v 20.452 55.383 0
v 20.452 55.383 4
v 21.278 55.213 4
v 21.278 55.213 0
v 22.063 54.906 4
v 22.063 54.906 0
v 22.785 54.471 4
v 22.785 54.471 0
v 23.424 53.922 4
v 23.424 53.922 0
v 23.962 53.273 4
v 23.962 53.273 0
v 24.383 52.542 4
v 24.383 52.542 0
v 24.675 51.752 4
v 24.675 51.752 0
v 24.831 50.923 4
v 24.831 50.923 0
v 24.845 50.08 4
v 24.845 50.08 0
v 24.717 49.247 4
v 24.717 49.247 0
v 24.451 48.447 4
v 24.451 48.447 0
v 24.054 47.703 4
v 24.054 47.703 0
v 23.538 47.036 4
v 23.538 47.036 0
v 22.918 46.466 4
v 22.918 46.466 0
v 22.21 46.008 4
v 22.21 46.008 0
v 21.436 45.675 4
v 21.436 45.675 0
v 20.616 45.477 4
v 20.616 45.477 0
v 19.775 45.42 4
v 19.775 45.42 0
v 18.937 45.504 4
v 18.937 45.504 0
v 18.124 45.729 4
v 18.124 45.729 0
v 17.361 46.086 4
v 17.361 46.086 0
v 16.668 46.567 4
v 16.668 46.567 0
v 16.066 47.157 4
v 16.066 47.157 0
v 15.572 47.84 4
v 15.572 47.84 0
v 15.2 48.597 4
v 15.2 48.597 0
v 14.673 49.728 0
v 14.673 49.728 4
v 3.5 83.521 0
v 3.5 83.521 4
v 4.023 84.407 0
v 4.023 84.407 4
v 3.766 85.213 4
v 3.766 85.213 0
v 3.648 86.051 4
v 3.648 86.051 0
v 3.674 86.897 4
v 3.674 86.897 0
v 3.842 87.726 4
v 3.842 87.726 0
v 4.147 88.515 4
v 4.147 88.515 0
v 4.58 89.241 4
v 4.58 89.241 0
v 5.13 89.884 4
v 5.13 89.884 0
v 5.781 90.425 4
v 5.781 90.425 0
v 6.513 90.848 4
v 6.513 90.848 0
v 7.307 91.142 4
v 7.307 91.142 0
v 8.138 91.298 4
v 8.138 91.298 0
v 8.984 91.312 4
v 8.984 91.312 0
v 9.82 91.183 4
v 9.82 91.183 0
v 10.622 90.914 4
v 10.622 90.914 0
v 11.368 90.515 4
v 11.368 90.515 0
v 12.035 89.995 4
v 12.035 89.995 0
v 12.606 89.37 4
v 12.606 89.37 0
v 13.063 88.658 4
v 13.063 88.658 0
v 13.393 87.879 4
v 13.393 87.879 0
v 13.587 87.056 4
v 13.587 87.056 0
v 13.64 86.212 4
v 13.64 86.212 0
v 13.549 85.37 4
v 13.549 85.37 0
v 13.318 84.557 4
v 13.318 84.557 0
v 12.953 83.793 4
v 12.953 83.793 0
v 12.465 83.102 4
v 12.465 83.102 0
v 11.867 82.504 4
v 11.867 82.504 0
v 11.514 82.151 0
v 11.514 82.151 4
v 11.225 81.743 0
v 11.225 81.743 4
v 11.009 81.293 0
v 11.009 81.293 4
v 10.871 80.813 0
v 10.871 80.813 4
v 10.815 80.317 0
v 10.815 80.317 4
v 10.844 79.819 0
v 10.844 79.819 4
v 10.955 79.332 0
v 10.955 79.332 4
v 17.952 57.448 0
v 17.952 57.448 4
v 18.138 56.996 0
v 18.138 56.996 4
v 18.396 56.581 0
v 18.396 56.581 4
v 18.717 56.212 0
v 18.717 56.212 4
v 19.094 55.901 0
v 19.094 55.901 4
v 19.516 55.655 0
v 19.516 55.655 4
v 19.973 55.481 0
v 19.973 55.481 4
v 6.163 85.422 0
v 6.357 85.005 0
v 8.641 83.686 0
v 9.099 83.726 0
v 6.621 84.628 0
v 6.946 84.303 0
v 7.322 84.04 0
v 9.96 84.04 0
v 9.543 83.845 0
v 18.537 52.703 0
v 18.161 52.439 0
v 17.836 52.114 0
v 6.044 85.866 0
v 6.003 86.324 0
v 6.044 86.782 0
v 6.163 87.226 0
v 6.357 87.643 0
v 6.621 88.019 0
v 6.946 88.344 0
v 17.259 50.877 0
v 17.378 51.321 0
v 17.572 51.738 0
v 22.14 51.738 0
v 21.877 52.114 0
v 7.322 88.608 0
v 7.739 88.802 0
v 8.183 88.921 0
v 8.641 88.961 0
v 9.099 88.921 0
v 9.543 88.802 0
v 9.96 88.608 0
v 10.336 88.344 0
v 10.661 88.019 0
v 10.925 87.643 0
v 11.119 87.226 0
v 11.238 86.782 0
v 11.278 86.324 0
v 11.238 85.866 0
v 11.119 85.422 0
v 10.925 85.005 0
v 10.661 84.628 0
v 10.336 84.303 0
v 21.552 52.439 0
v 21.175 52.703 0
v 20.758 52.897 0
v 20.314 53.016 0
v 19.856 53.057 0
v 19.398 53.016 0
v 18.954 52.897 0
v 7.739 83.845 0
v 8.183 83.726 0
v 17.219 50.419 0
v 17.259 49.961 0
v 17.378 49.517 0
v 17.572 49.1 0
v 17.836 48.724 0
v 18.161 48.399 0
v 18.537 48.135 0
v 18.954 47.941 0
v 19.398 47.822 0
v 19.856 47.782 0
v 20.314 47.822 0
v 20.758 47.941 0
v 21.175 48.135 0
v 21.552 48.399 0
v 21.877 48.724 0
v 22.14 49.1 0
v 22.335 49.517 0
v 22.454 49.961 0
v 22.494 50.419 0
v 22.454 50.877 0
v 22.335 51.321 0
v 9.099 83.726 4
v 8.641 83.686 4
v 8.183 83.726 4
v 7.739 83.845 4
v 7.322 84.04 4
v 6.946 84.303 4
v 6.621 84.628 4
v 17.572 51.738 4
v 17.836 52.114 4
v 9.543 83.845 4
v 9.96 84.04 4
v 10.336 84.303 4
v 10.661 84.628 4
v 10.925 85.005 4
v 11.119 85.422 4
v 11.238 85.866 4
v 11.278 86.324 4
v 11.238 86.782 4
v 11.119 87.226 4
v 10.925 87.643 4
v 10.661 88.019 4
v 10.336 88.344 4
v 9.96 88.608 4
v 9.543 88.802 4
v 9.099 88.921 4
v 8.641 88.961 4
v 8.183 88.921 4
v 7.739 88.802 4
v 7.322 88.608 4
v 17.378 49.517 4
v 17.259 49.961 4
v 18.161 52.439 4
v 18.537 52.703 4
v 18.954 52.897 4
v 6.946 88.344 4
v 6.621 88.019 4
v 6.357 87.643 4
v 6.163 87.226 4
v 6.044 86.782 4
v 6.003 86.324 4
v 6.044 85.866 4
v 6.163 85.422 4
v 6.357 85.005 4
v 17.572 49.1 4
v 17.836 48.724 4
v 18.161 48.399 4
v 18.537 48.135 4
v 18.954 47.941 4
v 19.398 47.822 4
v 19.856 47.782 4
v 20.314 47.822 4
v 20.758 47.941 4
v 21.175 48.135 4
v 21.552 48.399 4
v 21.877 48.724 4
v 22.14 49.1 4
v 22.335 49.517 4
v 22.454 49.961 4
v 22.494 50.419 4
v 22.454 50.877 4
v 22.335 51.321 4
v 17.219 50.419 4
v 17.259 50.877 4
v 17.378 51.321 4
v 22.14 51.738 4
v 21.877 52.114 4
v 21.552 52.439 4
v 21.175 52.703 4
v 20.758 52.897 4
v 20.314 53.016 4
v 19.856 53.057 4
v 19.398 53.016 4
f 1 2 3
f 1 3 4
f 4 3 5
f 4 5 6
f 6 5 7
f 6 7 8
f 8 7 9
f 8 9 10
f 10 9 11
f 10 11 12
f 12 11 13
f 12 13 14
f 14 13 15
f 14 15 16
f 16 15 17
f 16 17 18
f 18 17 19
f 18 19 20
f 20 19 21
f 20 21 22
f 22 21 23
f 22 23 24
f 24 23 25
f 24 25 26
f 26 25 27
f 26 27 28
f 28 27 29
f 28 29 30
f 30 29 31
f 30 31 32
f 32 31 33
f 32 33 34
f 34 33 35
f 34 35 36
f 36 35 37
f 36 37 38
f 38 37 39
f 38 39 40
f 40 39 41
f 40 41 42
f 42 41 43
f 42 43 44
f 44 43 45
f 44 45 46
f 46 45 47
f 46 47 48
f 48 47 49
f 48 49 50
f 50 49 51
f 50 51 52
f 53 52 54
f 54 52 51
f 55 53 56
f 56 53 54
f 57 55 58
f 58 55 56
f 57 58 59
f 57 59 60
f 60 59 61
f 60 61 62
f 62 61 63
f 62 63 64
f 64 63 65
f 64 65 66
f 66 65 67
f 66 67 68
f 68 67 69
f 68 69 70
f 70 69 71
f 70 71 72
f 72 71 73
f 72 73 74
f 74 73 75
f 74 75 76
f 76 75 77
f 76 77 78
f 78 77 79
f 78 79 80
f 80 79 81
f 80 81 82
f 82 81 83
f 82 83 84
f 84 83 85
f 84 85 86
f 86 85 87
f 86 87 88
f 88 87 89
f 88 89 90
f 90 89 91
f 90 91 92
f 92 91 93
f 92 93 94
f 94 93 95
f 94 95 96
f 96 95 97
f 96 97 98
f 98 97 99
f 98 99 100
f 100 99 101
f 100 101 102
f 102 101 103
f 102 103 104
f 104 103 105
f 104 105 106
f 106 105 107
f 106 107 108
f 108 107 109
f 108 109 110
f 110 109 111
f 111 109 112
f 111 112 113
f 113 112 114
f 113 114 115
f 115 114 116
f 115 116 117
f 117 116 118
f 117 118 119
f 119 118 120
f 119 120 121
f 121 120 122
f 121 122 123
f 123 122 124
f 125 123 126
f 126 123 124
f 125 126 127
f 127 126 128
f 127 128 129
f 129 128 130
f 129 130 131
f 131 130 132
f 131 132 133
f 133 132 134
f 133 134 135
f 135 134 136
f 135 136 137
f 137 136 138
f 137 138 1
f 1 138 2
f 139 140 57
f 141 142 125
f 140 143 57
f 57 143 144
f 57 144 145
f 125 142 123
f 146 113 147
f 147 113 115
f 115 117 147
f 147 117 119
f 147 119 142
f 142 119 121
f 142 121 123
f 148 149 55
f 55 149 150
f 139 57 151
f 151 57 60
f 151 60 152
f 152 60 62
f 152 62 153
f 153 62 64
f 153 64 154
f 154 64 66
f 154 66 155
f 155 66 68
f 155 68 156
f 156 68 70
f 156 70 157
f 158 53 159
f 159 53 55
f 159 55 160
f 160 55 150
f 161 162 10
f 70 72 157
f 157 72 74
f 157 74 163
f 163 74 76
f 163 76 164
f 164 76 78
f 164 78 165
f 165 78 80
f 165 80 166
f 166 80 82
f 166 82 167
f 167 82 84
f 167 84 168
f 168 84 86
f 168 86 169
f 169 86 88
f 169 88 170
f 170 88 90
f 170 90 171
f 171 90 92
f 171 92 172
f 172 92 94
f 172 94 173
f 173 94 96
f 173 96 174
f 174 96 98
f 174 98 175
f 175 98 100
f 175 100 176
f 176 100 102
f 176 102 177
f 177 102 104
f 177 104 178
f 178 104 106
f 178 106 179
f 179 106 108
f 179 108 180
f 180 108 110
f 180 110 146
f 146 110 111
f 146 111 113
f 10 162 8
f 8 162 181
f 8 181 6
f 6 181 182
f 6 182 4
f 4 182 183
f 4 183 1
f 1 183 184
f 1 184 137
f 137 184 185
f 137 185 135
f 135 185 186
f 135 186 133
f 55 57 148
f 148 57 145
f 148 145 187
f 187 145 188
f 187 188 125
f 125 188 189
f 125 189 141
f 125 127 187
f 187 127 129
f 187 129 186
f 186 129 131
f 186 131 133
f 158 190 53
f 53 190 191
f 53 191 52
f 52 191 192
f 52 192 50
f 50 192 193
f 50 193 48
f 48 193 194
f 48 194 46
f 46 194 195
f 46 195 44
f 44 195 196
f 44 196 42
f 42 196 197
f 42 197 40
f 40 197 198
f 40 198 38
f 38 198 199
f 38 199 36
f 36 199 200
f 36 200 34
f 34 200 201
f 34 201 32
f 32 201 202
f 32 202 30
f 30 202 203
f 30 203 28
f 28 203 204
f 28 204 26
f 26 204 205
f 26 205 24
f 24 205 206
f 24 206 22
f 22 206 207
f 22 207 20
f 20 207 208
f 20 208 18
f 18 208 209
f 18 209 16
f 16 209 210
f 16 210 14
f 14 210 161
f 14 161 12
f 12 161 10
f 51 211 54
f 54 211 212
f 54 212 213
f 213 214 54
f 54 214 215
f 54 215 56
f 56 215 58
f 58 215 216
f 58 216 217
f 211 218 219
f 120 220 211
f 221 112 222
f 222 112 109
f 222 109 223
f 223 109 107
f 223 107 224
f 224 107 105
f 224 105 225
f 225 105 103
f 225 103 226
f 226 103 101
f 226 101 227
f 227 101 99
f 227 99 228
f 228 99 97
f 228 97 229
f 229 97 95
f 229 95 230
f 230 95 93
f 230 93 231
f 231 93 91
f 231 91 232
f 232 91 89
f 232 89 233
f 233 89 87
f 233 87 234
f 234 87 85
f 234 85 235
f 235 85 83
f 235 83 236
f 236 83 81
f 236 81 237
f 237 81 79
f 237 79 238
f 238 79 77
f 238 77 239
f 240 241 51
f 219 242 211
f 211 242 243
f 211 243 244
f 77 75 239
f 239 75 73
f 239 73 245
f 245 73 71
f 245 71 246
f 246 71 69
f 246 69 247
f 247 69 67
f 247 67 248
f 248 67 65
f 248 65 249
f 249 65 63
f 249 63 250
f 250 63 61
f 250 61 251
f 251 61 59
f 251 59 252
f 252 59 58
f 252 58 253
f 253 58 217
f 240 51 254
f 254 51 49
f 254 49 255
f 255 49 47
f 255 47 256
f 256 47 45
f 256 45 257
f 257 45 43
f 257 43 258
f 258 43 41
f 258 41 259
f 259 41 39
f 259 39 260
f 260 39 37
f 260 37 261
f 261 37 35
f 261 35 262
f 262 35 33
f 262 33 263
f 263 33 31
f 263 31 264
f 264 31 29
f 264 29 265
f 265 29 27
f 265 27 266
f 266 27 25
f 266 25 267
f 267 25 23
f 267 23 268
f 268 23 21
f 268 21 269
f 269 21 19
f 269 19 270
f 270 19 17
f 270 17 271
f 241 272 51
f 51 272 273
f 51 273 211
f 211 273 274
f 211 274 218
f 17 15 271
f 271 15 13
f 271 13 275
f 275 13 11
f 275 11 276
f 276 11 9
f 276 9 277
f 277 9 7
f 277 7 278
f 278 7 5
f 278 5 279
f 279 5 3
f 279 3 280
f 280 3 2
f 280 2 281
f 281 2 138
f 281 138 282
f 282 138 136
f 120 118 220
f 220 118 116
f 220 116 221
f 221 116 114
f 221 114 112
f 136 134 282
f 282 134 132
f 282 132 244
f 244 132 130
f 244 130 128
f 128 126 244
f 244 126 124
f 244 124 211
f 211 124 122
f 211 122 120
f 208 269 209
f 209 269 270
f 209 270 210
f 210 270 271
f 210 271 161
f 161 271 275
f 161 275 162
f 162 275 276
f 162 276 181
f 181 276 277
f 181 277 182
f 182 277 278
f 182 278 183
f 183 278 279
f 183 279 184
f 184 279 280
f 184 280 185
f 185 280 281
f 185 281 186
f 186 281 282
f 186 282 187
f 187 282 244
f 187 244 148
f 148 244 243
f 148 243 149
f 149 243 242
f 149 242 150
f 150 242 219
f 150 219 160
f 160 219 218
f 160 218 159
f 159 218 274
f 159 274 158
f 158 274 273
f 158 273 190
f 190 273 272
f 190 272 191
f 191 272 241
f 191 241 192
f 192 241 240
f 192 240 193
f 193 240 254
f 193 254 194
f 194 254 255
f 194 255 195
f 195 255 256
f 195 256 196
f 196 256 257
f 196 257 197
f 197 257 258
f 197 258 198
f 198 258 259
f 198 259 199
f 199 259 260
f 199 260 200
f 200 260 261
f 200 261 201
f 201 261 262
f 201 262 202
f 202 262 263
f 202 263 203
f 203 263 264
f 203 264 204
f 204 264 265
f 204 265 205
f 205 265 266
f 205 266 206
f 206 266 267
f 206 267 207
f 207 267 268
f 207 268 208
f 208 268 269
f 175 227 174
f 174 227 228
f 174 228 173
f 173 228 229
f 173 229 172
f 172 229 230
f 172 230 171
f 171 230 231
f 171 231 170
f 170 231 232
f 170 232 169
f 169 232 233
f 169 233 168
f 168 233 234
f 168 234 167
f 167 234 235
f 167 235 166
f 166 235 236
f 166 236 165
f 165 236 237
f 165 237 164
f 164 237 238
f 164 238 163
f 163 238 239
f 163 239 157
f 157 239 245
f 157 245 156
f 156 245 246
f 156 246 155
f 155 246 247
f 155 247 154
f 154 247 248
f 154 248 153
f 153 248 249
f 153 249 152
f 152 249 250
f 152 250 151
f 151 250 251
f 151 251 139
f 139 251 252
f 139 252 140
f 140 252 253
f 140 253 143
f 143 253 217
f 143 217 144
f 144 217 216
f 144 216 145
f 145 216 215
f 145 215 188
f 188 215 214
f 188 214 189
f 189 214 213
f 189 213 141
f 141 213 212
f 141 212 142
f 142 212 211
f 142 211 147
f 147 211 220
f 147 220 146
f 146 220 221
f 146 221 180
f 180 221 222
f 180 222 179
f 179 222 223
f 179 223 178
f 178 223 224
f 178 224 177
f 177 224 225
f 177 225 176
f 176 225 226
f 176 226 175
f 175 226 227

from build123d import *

# Parameters (mm, degrees)
SKETCH1_R           = 2.6375
BOSS_EXTRUDE1_DEPTH = 4


with BuildPart() as part:
    # Sketch1 → Boss-Extrude1 (new body)
    with BuildSketch(Plane.XY.offset(4)):
        with BuildLine():
            Line((17.952113198, 57.448352953), (10.955070442, 79.331722279))
            ThreePointArc((10.955070442, 79.331722279), (10.929647665, 81.056262686), (11.867204342, 82.503906776))
            ThreePointArc((11.867204342, 82.503906776), (9.81999759, 91.182758949), (4.022786968, 84.407371171))
            Line((4.022786968, 84.407371171), (3.500292698, 83.52050233))
            Line((3.500292698, 83.52050233), (14.672653681, 49.728262883))
            Line((14.672653681, 49.728262883), (15.200071751, 48.596801815))
            ThreePointArc((15.200071751, 48.596801815), (23.810416572, 47.35893823), (20.452073098, 55.383392934))
            ThreePointArc((20.452073098, 55.383392934), (18.899078146, 56.049025475), (17.952113198, 57.448352953))
        make_face()
        with Locations((19.856196321, 50.419026825)):
            Circle(SKETCH1_R, mode=Mode.SUBTRACT)
        with Locations((8.640951758, 86.323762043)):
            Circle(SKETCH1_R, mode=Mode.SUBTRACT)
    extrude(amount=-BOSS_EXTRUDE1_DEPTH)


solid = part.part
